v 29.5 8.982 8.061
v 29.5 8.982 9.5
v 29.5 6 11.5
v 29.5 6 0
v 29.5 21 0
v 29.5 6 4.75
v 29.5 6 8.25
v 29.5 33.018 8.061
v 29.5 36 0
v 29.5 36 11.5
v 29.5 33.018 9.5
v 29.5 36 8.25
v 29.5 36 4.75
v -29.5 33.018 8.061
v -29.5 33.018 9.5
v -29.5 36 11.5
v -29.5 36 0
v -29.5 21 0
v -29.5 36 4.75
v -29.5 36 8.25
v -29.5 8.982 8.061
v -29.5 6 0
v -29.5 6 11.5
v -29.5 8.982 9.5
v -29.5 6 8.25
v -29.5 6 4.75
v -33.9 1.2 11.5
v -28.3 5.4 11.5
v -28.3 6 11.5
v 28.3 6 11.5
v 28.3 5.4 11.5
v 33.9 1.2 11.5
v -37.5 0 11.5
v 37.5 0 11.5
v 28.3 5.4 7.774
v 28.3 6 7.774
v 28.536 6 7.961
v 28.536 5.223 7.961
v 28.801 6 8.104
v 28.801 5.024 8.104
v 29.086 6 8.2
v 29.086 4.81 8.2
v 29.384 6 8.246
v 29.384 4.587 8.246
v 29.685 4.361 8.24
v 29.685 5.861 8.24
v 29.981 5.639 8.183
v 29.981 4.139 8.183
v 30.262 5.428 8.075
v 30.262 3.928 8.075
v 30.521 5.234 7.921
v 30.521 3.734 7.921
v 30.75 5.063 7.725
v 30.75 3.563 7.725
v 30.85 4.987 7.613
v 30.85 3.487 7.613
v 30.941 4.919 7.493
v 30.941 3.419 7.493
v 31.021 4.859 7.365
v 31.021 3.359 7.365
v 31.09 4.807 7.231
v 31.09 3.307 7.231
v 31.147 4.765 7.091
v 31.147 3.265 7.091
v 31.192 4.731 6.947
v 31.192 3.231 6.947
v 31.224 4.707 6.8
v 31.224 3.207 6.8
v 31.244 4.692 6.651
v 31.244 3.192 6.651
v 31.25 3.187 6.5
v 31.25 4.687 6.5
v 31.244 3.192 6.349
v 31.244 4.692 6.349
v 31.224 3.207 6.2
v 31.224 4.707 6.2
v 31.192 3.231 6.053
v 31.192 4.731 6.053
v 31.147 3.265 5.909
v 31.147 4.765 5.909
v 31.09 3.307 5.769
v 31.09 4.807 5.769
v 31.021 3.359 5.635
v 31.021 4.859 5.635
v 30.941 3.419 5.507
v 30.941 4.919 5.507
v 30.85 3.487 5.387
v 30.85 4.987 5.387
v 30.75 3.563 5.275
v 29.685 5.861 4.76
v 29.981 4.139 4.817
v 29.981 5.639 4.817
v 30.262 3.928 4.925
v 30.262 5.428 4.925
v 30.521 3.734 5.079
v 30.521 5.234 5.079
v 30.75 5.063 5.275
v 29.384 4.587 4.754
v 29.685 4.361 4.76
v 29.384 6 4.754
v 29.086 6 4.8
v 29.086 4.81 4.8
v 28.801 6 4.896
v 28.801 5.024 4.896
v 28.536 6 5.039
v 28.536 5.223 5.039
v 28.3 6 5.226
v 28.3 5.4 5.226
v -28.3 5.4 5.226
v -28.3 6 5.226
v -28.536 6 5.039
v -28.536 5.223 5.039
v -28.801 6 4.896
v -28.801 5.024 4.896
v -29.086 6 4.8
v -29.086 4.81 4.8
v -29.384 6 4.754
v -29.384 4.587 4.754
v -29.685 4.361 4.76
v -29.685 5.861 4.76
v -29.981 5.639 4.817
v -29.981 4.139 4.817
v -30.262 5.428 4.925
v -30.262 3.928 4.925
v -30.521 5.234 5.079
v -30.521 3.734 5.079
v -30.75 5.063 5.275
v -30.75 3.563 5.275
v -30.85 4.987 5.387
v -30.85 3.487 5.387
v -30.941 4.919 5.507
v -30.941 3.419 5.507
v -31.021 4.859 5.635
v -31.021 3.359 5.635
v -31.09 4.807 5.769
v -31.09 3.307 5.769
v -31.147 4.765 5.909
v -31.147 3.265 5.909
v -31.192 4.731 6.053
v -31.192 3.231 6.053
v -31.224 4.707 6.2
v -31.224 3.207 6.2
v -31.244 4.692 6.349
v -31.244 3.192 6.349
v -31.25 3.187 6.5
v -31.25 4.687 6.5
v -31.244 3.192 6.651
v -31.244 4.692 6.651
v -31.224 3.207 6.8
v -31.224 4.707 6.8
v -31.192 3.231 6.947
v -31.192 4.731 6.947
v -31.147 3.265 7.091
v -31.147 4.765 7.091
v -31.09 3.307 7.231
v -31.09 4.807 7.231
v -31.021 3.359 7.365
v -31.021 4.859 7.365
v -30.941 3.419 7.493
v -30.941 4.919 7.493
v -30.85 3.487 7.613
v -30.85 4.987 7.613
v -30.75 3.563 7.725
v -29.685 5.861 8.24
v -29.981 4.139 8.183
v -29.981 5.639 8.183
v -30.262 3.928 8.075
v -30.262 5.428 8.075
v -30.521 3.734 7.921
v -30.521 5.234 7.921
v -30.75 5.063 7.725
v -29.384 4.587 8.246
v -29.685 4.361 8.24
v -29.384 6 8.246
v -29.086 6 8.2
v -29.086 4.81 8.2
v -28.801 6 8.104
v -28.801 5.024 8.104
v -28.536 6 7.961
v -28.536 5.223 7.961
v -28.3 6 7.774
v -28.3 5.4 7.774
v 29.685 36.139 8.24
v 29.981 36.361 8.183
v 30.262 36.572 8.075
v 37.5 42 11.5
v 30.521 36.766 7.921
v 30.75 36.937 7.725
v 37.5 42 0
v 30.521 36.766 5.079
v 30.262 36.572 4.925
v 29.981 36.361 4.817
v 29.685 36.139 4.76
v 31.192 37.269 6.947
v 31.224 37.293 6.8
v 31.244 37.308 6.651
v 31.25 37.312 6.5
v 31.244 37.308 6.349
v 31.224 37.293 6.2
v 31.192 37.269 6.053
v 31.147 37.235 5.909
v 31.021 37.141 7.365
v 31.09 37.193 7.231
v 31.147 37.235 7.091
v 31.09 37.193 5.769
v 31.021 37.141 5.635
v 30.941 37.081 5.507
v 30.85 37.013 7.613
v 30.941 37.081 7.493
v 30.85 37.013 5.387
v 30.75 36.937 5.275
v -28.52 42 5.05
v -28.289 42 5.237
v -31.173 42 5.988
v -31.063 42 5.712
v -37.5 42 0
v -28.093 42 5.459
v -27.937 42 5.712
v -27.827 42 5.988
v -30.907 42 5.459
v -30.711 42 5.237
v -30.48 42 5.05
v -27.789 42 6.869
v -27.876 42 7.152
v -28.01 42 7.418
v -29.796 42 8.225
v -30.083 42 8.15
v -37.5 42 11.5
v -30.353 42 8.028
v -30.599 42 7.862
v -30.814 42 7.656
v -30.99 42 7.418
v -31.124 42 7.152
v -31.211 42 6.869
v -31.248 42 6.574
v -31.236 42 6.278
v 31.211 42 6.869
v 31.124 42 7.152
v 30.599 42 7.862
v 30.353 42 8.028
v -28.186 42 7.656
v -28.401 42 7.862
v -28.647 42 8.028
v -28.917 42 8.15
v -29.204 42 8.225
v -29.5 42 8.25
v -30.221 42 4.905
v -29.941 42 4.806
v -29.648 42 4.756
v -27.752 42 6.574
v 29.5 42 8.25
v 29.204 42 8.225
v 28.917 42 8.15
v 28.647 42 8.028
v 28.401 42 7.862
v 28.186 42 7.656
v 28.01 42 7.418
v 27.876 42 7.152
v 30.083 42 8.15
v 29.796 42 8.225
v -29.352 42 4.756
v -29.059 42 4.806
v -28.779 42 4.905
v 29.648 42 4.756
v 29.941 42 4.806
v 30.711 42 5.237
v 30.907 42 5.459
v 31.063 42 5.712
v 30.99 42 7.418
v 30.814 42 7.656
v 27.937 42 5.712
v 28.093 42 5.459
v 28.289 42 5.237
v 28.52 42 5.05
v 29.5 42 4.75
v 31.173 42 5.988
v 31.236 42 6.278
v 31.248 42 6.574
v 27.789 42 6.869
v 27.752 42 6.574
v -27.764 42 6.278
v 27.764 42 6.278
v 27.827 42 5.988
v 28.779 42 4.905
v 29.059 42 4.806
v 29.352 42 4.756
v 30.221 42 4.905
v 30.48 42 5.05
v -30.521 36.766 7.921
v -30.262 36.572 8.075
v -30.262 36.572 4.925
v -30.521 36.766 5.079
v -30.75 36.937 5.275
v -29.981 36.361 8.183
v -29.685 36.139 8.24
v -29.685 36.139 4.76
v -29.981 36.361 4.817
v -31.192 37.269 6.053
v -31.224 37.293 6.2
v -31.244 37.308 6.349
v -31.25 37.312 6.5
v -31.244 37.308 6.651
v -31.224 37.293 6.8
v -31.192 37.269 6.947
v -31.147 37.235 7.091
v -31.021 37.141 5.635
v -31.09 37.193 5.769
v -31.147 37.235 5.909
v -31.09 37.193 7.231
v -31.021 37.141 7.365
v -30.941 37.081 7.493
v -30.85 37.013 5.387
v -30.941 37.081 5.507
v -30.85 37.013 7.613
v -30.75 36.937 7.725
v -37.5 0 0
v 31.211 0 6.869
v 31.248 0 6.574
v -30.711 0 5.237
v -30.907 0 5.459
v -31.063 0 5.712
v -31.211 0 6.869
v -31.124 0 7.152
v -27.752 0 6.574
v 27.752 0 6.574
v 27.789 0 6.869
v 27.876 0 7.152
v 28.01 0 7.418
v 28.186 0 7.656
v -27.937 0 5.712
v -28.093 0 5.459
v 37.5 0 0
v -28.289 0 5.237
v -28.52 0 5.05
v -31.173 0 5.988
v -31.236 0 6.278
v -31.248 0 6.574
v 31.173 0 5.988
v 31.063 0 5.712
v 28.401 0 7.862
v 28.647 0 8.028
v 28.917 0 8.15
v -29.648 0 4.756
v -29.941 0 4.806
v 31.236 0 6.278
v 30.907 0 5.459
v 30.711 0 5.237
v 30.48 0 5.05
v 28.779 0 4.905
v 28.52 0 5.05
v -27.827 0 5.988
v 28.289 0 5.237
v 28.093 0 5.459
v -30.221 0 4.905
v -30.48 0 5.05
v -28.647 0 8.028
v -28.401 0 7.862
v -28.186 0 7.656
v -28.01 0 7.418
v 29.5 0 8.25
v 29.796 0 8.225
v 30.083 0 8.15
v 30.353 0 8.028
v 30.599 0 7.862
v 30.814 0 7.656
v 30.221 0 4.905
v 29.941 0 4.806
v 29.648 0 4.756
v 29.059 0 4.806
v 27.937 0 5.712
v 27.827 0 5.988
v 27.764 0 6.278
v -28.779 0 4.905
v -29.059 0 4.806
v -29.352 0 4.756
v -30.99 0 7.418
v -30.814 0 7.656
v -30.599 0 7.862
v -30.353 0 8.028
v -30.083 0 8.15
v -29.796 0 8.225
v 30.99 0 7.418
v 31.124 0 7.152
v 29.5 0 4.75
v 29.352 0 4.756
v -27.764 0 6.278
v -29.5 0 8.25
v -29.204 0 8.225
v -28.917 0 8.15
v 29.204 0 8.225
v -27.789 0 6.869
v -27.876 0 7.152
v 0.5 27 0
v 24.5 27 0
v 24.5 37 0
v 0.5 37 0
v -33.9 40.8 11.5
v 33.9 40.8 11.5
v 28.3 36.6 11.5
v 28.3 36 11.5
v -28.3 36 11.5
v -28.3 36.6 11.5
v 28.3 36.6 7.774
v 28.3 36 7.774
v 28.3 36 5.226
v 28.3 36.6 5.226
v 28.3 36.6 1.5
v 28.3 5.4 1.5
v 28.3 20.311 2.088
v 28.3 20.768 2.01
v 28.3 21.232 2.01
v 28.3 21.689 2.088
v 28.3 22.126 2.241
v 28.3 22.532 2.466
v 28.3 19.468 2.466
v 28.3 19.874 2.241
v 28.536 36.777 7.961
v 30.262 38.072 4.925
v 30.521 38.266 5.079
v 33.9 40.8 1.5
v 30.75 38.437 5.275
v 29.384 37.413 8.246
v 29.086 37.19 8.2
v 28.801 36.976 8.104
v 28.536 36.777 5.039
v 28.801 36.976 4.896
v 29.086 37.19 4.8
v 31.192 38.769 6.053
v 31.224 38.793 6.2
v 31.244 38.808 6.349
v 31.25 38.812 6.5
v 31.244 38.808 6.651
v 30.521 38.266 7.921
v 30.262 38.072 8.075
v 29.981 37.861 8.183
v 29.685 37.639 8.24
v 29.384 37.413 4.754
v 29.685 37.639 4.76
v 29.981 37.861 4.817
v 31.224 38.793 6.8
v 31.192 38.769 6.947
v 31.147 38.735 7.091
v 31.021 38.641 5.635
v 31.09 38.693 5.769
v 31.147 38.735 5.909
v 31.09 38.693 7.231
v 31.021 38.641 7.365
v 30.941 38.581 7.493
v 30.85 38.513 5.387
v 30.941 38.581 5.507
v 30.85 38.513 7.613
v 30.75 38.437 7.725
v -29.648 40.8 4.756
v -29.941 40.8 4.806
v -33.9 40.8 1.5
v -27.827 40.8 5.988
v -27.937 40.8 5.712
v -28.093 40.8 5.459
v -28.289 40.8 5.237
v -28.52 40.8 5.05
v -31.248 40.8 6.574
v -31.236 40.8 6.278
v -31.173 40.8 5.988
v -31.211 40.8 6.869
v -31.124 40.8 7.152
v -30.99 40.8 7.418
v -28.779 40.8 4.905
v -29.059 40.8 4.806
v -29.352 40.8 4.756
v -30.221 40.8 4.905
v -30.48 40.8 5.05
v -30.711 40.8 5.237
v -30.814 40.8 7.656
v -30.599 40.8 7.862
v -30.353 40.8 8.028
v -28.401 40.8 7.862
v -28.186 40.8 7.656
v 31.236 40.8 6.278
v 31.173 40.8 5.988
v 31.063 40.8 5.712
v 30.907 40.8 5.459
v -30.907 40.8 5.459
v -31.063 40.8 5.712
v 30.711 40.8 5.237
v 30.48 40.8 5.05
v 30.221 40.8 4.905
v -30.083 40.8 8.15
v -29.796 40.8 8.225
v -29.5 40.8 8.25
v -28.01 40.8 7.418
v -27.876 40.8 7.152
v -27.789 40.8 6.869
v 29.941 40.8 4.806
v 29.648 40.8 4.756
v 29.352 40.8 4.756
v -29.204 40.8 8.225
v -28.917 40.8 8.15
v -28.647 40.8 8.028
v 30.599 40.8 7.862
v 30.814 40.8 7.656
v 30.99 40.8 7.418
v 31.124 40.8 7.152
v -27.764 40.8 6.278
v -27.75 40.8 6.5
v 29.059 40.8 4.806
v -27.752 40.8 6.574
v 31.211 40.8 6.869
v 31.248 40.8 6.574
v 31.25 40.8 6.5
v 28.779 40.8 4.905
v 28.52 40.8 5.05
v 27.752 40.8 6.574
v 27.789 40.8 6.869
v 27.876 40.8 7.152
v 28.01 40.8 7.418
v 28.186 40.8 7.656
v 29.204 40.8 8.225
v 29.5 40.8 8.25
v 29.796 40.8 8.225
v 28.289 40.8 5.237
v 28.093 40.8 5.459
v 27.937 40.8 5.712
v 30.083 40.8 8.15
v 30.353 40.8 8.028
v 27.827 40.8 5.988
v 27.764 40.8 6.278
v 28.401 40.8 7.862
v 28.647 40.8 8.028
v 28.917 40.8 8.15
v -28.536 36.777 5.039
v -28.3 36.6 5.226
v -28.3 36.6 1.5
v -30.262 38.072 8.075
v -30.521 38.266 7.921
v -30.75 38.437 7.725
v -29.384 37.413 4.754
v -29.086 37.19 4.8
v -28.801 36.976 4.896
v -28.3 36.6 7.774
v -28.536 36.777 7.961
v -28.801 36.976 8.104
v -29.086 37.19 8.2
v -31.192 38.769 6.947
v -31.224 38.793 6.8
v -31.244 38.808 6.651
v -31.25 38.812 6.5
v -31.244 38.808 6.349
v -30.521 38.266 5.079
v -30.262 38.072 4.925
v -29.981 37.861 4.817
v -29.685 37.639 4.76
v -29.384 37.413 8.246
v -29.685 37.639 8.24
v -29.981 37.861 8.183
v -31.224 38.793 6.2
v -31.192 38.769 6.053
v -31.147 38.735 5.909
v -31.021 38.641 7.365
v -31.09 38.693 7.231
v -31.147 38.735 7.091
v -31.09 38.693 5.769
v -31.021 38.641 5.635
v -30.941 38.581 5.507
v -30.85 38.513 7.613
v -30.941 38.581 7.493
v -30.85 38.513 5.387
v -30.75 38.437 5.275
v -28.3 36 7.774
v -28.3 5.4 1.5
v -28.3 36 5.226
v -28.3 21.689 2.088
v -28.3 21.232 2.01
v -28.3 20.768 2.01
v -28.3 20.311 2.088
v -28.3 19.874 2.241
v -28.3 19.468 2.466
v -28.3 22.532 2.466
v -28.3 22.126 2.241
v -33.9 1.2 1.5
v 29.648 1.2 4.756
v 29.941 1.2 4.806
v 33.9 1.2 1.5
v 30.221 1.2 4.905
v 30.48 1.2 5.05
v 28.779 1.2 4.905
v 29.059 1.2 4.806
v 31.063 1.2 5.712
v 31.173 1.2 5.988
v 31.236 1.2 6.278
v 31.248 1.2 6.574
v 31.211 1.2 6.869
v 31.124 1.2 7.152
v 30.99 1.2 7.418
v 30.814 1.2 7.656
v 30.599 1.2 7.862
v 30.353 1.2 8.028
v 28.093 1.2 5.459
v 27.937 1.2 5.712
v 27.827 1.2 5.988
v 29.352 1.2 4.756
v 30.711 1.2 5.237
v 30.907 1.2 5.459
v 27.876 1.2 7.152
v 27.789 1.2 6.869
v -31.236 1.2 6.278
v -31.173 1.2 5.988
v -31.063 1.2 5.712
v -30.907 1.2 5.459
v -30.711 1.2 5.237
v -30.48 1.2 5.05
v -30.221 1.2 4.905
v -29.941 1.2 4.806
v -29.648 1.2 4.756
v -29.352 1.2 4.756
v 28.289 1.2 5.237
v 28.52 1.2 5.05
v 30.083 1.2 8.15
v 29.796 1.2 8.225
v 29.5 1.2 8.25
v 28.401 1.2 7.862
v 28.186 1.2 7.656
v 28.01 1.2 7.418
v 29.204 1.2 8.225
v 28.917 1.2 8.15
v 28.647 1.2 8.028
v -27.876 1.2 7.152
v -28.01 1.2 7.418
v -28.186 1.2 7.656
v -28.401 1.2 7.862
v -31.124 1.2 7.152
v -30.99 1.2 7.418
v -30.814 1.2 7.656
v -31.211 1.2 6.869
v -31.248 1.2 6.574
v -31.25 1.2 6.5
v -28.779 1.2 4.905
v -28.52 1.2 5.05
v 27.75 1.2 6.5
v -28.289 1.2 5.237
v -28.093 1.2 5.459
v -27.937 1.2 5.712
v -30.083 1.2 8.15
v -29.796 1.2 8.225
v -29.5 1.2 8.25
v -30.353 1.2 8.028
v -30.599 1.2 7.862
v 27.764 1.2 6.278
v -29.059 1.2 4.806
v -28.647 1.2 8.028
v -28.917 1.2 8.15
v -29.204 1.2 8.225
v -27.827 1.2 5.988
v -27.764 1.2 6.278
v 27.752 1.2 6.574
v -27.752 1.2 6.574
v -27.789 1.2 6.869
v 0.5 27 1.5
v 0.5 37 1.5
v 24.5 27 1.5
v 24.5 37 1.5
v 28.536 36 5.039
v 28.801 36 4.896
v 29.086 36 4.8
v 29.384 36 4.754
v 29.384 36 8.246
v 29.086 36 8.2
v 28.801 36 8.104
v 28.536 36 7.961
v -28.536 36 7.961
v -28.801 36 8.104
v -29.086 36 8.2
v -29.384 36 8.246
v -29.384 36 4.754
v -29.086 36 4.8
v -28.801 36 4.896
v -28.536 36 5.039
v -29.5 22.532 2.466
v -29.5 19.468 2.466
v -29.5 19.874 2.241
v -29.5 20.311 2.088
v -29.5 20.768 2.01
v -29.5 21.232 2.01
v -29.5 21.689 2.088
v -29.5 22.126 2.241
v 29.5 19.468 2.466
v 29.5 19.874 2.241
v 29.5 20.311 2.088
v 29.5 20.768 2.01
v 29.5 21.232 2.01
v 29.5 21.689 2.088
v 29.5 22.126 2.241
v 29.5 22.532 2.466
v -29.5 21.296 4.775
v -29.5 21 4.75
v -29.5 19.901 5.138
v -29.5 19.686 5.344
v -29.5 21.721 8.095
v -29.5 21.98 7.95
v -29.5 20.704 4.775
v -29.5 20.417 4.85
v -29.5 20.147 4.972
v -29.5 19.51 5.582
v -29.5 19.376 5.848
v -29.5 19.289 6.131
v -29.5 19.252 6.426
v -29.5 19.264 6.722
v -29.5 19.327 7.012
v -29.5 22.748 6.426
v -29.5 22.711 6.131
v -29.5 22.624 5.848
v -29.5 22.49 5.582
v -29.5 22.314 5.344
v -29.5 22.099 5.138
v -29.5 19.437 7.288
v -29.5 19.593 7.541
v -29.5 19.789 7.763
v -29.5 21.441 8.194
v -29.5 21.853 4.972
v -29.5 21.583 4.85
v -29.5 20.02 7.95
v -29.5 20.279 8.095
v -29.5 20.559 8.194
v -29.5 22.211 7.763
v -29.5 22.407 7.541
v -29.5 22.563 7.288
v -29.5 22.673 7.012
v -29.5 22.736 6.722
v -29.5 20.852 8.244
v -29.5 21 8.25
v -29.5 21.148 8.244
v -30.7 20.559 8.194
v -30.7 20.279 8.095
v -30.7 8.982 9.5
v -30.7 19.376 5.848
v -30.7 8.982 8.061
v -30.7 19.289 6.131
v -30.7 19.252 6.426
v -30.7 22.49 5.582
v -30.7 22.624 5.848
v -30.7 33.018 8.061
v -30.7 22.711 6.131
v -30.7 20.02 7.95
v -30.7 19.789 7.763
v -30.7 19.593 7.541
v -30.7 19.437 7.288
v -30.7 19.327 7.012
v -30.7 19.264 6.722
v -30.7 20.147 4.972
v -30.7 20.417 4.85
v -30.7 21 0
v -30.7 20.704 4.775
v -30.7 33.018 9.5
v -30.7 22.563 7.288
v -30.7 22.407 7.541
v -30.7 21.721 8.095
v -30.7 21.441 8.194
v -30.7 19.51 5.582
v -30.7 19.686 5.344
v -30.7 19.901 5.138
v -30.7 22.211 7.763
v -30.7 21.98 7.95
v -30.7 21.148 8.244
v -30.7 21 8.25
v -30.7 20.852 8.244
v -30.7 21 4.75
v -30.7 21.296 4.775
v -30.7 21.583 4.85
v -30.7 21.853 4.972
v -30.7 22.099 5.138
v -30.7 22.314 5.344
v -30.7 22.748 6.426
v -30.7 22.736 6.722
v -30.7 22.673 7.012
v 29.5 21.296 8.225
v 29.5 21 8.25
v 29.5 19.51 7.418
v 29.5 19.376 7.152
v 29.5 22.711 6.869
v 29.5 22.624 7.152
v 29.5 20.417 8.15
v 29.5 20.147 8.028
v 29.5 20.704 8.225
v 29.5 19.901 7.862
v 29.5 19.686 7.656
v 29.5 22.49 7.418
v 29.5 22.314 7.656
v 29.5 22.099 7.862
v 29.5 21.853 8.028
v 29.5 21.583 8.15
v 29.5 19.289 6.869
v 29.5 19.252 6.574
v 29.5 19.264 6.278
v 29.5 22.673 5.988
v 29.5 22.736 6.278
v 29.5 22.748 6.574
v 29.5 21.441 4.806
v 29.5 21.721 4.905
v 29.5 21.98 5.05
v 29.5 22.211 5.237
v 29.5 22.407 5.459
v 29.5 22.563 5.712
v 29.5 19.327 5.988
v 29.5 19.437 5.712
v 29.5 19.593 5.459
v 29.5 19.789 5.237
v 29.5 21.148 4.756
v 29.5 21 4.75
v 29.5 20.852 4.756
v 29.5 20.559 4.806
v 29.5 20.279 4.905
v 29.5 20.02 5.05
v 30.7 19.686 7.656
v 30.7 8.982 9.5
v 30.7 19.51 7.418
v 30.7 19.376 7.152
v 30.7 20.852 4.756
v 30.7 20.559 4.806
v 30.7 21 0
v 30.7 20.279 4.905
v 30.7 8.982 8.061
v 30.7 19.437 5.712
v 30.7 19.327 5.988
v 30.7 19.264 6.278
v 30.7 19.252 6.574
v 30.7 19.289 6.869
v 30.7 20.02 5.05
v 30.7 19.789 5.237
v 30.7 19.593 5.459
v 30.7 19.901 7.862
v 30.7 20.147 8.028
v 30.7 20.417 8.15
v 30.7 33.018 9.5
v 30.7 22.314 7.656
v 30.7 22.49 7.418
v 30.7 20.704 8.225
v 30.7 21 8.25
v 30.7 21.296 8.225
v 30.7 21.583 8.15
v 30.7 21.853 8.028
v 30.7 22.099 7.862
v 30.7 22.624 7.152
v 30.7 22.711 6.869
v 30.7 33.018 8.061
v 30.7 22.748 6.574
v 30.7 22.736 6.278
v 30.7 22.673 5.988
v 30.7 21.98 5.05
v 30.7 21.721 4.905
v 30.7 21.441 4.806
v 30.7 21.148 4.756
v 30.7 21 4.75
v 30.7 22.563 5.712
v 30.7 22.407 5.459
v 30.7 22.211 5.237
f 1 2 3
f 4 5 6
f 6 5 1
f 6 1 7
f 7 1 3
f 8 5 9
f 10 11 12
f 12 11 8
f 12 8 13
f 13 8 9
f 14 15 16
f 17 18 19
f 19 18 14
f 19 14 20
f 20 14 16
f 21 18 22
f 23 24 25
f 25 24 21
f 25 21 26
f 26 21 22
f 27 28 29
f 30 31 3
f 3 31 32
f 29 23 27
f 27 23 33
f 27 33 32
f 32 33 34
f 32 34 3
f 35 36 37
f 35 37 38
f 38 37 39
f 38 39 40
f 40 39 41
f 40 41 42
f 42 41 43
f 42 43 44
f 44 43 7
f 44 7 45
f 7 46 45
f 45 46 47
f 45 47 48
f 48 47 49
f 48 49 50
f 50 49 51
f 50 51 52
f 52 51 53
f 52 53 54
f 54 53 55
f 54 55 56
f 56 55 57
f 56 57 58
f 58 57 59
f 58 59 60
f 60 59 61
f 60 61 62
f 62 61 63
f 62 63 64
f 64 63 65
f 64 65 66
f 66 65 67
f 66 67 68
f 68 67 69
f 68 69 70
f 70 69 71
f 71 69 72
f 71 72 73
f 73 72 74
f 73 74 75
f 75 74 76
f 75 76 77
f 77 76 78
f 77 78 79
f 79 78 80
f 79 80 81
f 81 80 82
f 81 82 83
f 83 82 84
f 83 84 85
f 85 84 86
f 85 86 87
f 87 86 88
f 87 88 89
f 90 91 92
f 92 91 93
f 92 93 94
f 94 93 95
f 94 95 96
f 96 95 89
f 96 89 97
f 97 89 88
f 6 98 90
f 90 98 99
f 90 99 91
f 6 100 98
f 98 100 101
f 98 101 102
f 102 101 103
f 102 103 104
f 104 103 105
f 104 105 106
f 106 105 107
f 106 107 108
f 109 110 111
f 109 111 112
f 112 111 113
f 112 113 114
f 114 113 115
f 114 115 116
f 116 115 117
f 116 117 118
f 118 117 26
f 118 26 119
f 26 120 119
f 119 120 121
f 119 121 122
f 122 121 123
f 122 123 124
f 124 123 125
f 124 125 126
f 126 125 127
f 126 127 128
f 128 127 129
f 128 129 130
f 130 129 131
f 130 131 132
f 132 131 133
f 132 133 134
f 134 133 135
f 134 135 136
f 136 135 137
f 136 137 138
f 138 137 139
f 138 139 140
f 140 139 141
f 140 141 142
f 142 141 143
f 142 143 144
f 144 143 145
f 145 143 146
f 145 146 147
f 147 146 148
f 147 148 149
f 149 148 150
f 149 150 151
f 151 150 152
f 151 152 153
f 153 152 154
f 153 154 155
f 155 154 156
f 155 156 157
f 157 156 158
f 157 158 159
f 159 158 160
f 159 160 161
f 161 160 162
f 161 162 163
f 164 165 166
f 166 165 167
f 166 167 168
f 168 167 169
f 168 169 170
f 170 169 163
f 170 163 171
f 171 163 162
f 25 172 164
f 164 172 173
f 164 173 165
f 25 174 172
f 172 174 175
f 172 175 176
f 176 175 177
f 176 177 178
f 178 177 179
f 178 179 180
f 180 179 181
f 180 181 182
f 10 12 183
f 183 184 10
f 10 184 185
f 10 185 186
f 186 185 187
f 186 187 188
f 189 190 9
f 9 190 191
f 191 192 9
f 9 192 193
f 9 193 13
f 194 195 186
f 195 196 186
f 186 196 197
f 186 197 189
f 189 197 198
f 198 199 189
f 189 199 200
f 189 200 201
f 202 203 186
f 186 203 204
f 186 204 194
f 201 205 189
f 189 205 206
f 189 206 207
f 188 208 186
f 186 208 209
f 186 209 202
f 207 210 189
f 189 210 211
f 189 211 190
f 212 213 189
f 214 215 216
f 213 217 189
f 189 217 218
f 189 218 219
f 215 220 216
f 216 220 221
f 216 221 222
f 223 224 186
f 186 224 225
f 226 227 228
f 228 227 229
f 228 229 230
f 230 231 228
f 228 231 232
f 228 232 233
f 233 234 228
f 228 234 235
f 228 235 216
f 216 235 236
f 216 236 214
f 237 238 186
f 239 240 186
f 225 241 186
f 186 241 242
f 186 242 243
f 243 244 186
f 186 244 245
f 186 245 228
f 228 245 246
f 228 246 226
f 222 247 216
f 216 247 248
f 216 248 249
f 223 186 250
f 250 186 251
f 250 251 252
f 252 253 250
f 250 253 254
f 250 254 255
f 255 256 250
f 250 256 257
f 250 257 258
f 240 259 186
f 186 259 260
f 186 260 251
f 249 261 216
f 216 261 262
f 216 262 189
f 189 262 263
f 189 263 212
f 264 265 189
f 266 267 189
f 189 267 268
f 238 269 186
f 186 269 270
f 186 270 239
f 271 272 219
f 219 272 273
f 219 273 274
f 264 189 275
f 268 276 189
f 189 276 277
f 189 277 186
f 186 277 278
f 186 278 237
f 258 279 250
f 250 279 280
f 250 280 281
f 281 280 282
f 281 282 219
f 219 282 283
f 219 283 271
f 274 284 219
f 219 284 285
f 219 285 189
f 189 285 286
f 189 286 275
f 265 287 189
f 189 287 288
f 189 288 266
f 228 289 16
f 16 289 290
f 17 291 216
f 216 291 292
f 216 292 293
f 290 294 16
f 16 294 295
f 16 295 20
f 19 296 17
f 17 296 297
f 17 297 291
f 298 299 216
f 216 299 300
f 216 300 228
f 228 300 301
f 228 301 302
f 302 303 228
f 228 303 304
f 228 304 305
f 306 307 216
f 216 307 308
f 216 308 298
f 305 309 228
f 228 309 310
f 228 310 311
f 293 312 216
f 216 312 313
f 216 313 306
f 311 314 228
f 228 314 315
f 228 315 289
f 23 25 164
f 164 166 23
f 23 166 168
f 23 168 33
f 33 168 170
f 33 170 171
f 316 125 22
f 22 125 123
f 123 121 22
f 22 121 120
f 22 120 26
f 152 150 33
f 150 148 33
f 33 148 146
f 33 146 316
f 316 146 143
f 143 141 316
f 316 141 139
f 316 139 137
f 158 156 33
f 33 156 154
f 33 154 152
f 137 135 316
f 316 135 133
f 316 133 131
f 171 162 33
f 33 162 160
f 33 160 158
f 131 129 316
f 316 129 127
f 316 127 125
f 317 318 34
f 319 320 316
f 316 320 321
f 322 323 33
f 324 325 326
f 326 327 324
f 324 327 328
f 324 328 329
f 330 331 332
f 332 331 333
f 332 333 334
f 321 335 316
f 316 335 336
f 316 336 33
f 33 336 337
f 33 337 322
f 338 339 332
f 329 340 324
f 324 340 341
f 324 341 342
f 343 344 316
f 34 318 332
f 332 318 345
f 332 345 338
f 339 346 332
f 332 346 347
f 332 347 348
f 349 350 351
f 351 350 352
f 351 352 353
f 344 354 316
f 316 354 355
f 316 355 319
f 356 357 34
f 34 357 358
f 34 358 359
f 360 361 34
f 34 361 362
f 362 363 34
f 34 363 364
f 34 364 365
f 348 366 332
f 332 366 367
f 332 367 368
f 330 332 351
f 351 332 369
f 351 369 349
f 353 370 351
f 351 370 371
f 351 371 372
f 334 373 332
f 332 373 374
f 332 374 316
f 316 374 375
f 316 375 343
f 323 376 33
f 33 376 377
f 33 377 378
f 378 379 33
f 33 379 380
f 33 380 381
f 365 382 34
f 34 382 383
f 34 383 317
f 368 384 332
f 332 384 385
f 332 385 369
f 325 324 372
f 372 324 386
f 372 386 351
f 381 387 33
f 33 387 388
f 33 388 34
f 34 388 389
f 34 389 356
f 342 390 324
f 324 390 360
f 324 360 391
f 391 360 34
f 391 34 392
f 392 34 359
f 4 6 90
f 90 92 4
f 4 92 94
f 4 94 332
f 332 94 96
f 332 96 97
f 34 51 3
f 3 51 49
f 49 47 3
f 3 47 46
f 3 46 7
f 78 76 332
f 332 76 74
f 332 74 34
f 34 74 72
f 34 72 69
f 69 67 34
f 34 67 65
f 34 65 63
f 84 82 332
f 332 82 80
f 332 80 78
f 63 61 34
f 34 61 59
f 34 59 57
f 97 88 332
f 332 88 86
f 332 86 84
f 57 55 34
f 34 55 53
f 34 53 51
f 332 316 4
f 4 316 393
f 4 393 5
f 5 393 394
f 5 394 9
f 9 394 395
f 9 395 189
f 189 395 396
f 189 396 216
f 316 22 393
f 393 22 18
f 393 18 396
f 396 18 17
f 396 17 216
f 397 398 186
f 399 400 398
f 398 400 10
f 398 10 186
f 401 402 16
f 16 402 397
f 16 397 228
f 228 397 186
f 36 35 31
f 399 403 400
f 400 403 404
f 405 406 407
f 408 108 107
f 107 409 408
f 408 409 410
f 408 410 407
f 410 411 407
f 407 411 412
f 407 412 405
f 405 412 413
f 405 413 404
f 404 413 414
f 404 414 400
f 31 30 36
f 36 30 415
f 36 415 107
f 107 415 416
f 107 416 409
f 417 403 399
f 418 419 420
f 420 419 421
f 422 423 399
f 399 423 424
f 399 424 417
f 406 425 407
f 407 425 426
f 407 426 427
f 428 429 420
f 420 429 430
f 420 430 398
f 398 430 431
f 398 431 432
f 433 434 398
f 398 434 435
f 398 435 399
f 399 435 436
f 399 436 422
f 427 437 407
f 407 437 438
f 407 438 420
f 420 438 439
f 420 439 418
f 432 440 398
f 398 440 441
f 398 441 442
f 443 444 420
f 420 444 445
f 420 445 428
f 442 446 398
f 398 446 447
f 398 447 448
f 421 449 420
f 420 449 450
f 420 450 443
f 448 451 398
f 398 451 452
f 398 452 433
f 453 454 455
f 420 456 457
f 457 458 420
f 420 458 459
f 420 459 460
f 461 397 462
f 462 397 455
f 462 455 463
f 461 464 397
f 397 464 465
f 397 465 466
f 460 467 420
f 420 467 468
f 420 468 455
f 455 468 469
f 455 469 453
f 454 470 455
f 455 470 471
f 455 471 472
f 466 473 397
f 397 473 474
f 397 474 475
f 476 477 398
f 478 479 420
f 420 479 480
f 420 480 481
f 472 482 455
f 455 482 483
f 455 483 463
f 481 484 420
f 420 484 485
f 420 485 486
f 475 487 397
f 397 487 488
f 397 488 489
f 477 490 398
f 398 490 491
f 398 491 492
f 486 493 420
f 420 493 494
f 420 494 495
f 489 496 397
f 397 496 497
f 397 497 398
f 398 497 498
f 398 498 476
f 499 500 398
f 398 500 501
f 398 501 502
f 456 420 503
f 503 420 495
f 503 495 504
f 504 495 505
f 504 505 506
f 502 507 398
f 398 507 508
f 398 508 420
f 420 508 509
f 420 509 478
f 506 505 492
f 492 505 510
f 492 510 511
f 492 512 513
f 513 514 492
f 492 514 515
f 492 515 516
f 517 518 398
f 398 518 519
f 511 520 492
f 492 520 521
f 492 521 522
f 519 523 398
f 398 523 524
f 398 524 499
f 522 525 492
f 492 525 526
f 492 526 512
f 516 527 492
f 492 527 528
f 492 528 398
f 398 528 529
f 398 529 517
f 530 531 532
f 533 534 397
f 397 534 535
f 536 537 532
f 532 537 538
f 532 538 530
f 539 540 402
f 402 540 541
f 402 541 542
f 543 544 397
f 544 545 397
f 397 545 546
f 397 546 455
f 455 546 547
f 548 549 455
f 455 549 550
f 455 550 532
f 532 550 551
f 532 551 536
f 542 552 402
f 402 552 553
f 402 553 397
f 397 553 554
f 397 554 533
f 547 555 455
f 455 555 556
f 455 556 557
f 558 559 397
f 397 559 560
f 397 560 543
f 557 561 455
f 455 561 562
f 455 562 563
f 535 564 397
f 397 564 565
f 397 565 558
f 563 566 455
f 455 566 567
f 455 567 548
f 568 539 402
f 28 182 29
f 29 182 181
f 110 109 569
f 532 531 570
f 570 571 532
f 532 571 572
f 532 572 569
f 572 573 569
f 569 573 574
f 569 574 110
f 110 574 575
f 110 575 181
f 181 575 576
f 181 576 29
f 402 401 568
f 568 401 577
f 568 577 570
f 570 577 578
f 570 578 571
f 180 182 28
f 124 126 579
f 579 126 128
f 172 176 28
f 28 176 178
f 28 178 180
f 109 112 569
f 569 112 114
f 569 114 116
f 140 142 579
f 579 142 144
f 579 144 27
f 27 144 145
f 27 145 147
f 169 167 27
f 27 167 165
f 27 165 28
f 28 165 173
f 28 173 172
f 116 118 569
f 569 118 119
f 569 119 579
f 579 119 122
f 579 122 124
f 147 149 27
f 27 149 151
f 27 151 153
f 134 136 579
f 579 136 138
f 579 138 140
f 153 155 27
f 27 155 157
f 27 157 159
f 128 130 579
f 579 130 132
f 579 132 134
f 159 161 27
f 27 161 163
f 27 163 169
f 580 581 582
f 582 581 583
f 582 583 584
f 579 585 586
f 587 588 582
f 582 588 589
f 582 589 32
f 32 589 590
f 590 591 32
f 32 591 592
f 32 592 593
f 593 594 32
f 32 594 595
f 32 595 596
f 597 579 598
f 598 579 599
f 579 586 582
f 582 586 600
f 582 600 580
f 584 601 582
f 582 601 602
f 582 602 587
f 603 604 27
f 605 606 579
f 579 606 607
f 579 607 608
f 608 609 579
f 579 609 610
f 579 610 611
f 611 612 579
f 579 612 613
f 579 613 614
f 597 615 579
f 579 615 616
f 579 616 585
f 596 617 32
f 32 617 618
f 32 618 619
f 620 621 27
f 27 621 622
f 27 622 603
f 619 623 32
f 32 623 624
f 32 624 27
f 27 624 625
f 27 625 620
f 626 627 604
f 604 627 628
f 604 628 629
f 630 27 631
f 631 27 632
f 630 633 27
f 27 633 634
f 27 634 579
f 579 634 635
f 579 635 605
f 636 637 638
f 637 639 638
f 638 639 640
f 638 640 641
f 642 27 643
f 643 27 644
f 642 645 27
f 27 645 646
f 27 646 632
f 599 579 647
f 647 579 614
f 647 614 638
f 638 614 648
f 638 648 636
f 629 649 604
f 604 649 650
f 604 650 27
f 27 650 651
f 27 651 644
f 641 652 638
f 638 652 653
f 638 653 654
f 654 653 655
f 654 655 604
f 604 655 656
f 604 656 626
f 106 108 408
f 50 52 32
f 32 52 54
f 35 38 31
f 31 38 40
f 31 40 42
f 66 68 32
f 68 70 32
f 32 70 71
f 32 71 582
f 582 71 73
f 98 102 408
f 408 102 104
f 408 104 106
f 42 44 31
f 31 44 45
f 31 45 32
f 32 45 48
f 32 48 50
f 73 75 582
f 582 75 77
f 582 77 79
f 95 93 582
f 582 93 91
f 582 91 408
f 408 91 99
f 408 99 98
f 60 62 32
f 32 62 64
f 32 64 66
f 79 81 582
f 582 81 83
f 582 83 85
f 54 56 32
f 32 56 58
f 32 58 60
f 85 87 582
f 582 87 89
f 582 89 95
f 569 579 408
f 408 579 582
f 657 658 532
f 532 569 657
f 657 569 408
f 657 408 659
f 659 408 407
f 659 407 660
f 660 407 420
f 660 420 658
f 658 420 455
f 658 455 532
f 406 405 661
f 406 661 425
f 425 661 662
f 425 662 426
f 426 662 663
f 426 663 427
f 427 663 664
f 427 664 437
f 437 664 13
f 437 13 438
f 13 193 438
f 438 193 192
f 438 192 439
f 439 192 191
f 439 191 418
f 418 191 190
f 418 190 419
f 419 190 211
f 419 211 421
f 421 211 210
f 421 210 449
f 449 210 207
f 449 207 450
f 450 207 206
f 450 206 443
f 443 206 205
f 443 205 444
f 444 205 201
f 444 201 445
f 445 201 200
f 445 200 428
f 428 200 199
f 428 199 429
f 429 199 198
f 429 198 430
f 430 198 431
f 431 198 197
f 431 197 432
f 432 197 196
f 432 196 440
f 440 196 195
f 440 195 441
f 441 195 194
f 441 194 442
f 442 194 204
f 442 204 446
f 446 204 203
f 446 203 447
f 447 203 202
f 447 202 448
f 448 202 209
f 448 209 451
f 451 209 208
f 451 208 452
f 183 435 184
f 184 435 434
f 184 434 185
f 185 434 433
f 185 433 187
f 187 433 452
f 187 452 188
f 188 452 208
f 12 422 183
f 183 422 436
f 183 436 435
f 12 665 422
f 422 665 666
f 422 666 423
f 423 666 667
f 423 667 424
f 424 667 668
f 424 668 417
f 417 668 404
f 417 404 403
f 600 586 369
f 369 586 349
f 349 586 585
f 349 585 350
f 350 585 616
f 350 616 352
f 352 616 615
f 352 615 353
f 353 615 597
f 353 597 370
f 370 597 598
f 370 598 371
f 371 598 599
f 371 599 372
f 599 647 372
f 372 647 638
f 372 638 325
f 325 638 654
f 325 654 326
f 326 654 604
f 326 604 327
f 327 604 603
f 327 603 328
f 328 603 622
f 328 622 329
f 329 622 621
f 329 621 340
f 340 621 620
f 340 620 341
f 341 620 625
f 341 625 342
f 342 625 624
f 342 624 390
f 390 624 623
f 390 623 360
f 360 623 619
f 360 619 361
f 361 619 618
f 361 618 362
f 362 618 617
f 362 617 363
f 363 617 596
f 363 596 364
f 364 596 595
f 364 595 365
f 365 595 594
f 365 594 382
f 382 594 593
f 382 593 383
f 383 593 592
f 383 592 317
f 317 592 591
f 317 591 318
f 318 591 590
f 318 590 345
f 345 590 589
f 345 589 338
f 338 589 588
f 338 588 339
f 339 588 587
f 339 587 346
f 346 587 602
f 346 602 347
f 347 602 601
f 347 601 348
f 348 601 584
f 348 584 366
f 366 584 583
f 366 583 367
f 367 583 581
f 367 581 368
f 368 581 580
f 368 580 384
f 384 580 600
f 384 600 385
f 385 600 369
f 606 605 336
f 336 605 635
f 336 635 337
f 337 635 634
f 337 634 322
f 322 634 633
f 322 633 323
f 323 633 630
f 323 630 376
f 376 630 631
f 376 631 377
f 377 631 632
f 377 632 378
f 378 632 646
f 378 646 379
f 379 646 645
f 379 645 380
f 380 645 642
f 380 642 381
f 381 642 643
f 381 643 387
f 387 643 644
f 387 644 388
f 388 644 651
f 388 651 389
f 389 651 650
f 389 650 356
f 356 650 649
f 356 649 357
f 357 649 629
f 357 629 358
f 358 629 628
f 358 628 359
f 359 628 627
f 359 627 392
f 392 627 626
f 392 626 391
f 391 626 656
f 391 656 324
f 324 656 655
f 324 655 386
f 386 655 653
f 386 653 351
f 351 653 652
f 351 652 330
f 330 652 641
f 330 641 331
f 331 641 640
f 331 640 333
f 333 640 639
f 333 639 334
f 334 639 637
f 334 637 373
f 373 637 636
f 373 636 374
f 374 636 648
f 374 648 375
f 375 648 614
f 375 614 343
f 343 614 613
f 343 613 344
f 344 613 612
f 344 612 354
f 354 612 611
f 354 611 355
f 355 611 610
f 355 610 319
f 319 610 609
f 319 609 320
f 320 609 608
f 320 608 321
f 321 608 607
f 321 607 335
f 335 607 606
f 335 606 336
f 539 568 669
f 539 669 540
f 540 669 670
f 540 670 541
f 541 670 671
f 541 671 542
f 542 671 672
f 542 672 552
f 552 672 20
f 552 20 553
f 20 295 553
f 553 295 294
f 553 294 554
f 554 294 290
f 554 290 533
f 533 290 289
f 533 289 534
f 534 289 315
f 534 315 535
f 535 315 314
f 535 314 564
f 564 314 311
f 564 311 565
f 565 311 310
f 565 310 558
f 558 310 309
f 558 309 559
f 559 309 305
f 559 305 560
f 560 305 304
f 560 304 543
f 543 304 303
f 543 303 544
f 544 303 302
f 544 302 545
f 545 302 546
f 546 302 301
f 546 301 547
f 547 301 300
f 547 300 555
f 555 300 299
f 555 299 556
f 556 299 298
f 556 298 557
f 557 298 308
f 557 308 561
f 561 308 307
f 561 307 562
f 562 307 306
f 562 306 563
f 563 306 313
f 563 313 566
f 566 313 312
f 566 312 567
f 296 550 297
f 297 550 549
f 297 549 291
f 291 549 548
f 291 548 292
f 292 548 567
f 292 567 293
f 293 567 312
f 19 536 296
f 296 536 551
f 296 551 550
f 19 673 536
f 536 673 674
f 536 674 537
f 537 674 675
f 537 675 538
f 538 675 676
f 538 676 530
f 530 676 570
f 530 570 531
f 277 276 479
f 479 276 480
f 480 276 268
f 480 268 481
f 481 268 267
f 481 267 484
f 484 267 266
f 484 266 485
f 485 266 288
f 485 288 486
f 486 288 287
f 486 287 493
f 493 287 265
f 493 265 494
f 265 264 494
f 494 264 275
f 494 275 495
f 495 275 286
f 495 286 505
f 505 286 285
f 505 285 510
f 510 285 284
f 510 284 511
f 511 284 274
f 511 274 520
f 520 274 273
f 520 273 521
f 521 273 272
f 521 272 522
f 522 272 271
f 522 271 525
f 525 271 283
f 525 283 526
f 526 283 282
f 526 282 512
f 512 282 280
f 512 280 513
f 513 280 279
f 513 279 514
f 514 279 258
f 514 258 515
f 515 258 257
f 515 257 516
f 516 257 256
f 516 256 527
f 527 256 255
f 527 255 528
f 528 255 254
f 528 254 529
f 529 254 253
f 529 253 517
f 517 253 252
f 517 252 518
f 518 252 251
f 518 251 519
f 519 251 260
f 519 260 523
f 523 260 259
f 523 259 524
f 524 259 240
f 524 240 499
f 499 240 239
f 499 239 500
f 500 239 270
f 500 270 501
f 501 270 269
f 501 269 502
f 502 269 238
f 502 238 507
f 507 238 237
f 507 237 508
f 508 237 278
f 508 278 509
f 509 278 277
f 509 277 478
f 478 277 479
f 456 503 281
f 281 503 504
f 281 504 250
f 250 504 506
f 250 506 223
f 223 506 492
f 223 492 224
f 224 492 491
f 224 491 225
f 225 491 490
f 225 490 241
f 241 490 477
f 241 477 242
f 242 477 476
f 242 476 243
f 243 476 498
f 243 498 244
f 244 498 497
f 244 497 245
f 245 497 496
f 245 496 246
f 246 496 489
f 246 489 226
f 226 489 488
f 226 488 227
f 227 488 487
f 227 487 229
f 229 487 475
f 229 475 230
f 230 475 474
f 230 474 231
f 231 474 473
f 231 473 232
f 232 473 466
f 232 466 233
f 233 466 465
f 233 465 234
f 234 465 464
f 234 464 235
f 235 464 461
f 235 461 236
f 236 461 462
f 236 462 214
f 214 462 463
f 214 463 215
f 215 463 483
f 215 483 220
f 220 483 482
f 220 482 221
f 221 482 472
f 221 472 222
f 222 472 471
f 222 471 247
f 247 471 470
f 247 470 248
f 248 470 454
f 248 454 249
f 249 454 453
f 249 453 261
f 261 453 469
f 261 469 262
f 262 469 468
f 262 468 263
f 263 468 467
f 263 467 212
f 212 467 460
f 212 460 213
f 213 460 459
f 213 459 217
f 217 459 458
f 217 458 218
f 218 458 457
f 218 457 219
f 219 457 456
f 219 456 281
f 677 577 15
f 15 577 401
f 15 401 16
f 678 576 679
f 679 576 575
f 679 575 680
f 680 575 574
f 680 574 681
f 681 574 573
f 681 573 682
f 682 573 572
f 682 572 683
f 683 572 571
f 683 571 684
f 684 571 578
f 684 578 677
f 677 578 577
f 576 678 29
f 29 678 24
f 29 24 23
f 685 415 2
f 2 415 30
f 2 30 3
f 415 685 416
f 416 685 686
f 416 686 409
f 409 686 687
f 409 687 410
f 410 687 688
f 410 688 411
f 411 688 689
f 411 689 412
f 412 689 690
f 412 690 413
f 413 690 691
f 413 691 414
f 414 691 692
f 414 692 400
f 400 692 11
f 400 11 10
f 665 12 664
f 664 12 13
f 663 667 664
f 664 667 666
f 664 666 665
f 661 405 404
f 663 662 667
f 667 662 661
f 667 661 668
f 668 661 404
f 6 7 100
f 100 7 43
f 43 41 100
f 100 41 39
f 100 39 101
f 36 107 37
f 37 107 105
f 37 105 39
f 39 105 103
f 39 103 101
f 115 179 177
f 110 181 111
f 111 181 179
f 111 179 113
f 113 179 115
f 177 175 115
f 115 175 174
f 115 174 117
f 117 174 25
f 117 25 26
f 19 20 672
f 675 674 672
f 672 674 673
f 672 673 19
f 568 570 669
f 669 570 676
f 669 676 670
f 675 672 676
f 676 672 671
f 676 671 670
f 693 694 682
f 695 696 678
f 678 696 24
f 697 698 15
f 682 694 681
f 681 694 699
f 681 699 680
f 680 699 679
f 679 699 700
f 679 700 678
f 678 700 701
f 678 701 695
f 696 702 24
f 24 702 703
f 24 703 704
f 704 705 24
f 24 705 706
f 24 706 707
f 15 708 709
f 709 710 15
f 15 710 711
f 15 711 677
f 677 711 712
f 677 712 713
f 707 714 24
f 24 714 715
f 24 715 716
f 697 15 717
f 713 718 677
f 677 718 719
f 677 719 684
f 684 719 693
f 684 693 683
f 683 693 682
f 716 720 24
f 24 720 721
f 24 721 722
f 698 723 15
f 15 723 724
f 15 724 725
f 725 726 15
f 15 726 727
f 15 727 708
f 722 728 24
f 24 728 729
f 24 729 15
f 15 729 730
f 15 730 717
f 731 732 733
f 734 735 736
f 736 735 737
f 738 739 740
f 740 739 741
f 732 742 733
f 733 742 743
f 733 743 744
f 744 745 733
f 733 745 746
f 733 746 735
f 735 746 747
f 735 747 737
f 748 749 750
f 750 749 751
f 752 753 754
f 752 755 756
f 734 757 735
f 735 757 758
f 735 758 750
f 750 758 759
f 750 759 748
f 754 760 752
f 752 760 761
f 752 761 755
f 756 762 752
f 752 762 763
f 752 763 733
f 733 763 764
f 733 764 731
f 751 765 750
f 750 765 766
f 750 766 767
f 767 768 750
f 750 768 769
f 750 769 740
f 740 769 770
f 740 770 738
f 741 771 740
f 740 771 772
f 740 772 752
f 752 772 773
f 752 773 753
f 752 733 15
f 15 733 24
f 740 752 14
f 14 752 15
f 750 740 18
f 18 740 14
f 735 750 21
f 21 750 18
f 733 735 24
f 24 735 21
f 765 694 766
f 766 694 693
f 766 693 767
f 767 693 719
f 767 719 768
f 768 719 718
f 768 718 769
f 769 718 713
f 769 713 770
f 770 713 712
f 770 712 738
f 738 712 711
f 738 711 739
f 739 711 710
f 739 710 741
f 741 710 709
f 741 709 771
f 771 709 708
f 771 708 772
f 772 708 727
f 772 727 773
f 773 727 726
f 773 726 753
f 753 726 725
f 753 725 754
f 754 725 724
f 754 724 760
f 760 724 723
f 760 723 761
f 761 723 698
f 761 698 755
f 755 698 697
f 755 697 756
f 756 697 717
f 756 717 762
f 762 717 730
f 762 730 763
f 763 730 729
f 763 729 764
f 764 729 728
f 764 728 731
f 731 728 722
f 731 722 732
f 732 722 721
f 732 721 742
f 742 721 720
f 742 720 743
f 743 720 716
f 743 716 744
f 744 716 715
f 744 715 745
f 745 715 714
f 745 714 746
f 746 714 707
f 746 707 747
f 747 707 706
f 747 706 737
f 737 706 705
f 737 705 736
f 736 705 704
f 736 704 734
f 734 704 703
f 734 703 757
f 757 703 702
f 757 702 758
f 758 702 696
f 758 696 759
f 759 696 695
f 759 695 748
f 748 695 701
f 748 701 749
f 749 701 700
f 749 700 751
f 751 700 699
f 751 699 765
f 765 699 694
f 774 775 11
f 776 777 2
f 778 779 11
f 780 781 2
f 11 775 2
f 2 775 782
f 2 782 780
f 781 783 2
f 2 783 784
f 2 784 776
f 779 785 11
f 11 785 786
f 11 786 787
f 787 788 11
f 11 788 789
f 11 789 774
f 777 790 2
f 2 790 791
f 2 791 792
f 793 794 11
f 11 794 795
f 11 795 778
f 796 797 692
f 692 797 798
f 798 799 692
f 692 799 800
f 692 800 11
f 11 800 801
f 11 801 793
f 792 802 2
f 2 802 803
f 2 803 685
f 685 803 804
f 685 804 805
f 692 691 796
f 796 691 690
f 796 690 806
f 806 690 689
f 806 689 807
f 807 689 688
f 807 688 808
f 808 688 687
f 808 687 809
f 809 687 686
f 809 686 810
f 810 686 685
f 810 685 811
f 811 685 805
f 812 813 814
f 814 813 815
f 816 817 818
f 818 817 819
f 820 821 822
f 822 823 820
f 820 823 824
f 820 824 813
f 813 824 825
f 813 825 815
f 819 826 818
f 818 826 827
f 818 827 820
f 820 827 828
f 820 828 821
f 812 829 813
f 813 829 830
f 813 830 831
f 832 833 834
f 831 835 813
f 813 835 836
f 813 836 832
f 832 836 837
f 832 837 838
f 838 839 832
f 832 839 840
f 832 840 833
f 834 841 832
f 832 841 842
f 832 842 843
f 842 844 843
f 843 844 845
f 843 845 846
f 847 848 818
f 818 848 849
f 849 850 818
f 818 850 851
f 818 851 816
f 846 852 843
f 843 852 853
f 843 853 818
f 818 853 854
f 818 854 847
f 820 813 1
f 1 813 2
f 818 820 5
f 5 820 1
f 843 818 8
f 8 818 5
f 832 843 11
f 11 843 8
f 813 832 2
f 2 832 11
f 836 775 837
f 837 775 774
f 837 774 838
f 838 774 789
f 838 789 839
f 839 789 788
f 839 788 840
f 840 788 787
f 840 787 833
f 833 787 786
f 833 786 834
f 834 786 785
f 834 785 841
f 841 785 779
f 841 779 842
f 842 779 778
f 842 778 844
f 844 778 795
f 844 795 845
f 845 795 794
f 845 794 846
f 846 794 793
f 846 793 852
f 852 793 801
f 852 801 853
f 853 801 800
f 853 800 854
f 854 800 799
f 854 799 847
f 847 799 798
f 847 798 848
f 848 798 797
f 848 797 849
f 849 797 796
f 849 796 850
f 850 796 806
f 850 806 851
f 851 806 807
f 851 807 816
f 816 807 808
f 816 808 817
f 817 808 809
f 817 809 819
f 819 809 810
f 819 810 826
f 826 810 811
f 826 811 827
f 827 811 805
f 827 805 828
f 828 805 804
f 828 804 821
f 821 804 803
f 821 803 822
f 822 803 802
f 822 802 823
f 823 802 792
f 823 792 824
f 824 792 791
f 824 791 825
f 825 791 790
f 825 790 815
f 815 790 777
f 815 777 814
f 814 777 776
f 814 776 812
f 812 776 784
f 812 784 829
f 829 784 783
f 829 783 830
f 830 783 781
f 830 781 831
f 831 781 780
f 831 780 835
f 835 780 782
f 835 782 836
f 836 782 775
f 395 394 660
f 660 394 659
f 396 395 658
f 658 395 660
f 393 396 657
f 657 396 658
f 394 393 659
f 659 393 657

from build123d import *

# Parameters (mm, degrees)
EXTRUDE_1_DEPTH     = 1.5
EXTRUDE_2_DEPTH     = 10
SKETCH_3_R          = 1.75
CUT_EXTRUDE_1_DEPTH = 58.467382053
CUT_EXTRUDE_2_DEPTH = 80.907759323
EXTRUDE_3_DEPTH     = 1.2
EXTRUDE_4_DEPTH     = 1.2
SKETCH_7_R          = 1.75
EXTRUDE_5_DEPTH     = 1.2
EXTRUDE_START       = 1.2
SKETCH_8_R          = 1.75
EXTRUDE_6_DEPTH     = 1.2
SKETCH_9_W          = 24
SKETCH_9_H          = 10
CUT_EXTRUDE_4_DEPTH = 58.467382053


with BuildPart() as part:
    # 草图1 → 凸台-拉伸1 (new body)
    with BuildSketch(Plane.XY):
        Polygon((29.5, 6), (37.5, 0), (-37.5, 0), (-29.5, 6), (-29.5, 36), (-37.5, 42), (37.5, 42), (29.5, 36), align=None)
    extrude(amount=EXTRUDE_1_DEPTH)

    # 草图2 → 凸台-拉伸2 (add)
    with BuildSketch(Plane.XY.offset(1.5)):
        Polygon((29.5, 36), (37.5, 42), (-37.5, 42), (-29.5, 36), (-29.5, 6), (-37.5, 0), (37.5, 0), (29.5, 6), align=None)
        Polygon((28.3, 36.6), (33.9, 40.8), (-33.9, 40.8), (-28.3, 36.6), (-28.3, 5.4), (-33.9, 1.2), (33.9, 1.2), (28.3, 5.4), align=None, mode=Mode.SUBTRACT)
    extrude(amount=EXTRUDE_2_DEPTH)

    # 草图3 → 切除-拉伸1 (cut, through all)
    with BuildSketch(Plane(origin=(0, 42, 0), x_dir=(1, 0, 0), z_dir=(0, 1, 0))):
        with Locations(Location((-29.5, -6.5, 0), (0, 0, 270))):
            Circle(SKETCH_3_R)
        with Locations(Location((29.5, -6.5, 0), (0, 0, 180))):
            Circle(SKETCH_3_R)
    extrude(amount=-CUT_EXTRUDE_1_DEPTH, mode=Mode.SUBTRACT)

    # 草图4 → 切除-拉伸2 (cut, through all)
    with BuildSketch(Plane(origin=(29.5, 0, 0), x_dir=(0, 0, -1), z_dir=(1, 0, 0))):
        with BuildLine():
            Line((-2.466181259, 22.5318851), (-11.5, 36))
            Line((-11.5, 36), (-11.5, 6))
            Line((-11.5, 6), (-2.466181259, 19.4681149))
            ThreePointArc((-2.466181259, 19.4681149), (-2, 21), (-2.466181259, 22.5318851))
        make_face()
    extrude(amount=-CUT_EXTRUDE_2_DEPTH, mode=Mode.SUBTRACT)

    # 草图5 → 凸台-拉伸3 (add)
    with BuildSketch(Plane(origin=(29.5, 0, 0), x_dir=(0, 0, -1), z_dir=(1, 0, 0))):
        Polygon((-4.75, 25.936727957), (-8.25, 31.154720868), (-8.25, 36), (-4.75, 36), align=None)
        Polygon((-4.75, 16.063272043), (-8.25, 10.845279132), (-8.25, 6), (-4.75, 6), align=None)
    extrude(amount=-EXTRUDE_3_DEPTH)

    # 草图6 → 凸台-拉伸4 (add)
    with BuildSketch(Plane.ZY.offset(29.5)):
        Polygon((8.25, 6), (4.75, 6), (4.75, 16.063272043), (8.25, 10.845279132), align=None)
        Polygon((4.75, 25.936727957), (8.25, 31.154720868), (8.25, 36), (4.75, 36), align=None)
    extrude(amount=-EXTRUDE_4_DEPTH)

    # 草图7 → 凸台-拉伸5 (add)
    with BuildSketch(Plane.ZY.offset(29.5)):
        Polygon((9.5, 21), (9.5, 33.018289765), (8.061339847, 33.018289765), (0, 21), (8.061339847, 8.981710235), (9.5, 8.981710235), align=None)
        with Locations((6.5, 21)):
            Circle(SKETCH_7_R, mode=Mode.SUBTRACT)
    extrude(amount=EXTRUDE_5_DEPTH)

    # 草图8 → 凸台-拉伸6 (add)
    with BuildSketch(Plane(origin=(29.5, 0, 0), x_dir=(0, 0, -1), z_dir=(1, 0, 0)).offset(EXTRUDE_START)):
        Polygon((-9.5, 8.981710235), (-9.5, 33.018289765), (-8.061339847, 33.018289765), (0, 21), (-8.061339847, 8.981710235), align=None)
        with Locations(Location((-6.5, 21, 0), (0, 0, 180))):
            Circle(SKETCH_8_R, mode=Mode.SUBTRACT)
    extrude(amount=-EXTRUDE_6_DEPTH)

    # 草图9 → 切除-拉伸4 (cut, through all)
    with BuildSketch(Plane(origin=(0, 0, 0), x_dir=(-1, 0, 0), z_dir=(0, 0, -1))):
        with Locations((-12.5, 32)):
            Rectangle(SKETCH_9_W, SKETCH_9_H)
    extrude(amount=-CUT_EXTRUDE_4_DEPTH, mode=Mode.SUBTRACT)


solid = part.part
